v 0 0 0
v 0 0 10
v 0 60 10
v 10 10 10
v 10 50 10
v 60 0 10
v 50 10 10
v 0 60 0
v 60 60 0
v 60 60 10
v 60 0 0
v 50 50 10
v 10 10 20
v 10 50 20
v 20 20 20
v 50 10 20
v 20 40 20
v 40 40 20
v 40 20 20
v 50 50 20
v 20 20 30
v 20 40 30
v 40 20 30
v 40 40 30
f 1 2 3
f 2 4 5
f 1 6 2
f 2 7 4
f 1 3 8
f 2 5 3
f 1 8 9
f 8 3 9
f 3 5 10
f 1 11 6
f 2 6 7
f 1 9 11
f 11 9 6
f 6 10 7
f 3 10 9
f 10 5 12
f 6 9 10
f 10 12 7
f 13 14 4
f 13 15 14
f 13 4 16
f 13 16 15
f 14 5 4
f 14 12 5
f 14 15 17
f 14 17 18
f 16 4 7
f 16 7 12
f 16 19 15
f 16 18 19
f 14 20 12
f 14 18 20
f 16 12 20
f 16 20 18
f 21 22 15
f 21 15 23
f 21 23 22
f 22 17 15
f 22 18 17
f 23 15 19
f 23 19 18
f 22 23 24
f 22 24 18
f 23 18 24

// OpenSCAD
module pyramid(base_x, base_y, height) {
  difference() {
    cube([base_x, base_y, height]);
    if (base_x > 20 && base_y > 20) {
      translate([base_x/2 - 10, base_y/2 - 10, height])
        cube([base_x-20, base_y-20, height]);
    }
  }
}

module stacked_pyramid(base_x, base_y, height, num_layers) {
  for (i = [0:num_layers - 1]) {
    layer_x = base_x - i * 20;
    layer_y = base_y - i * 20;
    translate([base_x/2 - layer_x/2, base_y/2 - layer_y/2, i * height]) {
      cube([layer_x, layer_y, height]);
    }
  }
}

module three_layered_pyramid() {
  stacked_pyramid(60, 60, 10, 3);
}

three_layered_pyramid();
